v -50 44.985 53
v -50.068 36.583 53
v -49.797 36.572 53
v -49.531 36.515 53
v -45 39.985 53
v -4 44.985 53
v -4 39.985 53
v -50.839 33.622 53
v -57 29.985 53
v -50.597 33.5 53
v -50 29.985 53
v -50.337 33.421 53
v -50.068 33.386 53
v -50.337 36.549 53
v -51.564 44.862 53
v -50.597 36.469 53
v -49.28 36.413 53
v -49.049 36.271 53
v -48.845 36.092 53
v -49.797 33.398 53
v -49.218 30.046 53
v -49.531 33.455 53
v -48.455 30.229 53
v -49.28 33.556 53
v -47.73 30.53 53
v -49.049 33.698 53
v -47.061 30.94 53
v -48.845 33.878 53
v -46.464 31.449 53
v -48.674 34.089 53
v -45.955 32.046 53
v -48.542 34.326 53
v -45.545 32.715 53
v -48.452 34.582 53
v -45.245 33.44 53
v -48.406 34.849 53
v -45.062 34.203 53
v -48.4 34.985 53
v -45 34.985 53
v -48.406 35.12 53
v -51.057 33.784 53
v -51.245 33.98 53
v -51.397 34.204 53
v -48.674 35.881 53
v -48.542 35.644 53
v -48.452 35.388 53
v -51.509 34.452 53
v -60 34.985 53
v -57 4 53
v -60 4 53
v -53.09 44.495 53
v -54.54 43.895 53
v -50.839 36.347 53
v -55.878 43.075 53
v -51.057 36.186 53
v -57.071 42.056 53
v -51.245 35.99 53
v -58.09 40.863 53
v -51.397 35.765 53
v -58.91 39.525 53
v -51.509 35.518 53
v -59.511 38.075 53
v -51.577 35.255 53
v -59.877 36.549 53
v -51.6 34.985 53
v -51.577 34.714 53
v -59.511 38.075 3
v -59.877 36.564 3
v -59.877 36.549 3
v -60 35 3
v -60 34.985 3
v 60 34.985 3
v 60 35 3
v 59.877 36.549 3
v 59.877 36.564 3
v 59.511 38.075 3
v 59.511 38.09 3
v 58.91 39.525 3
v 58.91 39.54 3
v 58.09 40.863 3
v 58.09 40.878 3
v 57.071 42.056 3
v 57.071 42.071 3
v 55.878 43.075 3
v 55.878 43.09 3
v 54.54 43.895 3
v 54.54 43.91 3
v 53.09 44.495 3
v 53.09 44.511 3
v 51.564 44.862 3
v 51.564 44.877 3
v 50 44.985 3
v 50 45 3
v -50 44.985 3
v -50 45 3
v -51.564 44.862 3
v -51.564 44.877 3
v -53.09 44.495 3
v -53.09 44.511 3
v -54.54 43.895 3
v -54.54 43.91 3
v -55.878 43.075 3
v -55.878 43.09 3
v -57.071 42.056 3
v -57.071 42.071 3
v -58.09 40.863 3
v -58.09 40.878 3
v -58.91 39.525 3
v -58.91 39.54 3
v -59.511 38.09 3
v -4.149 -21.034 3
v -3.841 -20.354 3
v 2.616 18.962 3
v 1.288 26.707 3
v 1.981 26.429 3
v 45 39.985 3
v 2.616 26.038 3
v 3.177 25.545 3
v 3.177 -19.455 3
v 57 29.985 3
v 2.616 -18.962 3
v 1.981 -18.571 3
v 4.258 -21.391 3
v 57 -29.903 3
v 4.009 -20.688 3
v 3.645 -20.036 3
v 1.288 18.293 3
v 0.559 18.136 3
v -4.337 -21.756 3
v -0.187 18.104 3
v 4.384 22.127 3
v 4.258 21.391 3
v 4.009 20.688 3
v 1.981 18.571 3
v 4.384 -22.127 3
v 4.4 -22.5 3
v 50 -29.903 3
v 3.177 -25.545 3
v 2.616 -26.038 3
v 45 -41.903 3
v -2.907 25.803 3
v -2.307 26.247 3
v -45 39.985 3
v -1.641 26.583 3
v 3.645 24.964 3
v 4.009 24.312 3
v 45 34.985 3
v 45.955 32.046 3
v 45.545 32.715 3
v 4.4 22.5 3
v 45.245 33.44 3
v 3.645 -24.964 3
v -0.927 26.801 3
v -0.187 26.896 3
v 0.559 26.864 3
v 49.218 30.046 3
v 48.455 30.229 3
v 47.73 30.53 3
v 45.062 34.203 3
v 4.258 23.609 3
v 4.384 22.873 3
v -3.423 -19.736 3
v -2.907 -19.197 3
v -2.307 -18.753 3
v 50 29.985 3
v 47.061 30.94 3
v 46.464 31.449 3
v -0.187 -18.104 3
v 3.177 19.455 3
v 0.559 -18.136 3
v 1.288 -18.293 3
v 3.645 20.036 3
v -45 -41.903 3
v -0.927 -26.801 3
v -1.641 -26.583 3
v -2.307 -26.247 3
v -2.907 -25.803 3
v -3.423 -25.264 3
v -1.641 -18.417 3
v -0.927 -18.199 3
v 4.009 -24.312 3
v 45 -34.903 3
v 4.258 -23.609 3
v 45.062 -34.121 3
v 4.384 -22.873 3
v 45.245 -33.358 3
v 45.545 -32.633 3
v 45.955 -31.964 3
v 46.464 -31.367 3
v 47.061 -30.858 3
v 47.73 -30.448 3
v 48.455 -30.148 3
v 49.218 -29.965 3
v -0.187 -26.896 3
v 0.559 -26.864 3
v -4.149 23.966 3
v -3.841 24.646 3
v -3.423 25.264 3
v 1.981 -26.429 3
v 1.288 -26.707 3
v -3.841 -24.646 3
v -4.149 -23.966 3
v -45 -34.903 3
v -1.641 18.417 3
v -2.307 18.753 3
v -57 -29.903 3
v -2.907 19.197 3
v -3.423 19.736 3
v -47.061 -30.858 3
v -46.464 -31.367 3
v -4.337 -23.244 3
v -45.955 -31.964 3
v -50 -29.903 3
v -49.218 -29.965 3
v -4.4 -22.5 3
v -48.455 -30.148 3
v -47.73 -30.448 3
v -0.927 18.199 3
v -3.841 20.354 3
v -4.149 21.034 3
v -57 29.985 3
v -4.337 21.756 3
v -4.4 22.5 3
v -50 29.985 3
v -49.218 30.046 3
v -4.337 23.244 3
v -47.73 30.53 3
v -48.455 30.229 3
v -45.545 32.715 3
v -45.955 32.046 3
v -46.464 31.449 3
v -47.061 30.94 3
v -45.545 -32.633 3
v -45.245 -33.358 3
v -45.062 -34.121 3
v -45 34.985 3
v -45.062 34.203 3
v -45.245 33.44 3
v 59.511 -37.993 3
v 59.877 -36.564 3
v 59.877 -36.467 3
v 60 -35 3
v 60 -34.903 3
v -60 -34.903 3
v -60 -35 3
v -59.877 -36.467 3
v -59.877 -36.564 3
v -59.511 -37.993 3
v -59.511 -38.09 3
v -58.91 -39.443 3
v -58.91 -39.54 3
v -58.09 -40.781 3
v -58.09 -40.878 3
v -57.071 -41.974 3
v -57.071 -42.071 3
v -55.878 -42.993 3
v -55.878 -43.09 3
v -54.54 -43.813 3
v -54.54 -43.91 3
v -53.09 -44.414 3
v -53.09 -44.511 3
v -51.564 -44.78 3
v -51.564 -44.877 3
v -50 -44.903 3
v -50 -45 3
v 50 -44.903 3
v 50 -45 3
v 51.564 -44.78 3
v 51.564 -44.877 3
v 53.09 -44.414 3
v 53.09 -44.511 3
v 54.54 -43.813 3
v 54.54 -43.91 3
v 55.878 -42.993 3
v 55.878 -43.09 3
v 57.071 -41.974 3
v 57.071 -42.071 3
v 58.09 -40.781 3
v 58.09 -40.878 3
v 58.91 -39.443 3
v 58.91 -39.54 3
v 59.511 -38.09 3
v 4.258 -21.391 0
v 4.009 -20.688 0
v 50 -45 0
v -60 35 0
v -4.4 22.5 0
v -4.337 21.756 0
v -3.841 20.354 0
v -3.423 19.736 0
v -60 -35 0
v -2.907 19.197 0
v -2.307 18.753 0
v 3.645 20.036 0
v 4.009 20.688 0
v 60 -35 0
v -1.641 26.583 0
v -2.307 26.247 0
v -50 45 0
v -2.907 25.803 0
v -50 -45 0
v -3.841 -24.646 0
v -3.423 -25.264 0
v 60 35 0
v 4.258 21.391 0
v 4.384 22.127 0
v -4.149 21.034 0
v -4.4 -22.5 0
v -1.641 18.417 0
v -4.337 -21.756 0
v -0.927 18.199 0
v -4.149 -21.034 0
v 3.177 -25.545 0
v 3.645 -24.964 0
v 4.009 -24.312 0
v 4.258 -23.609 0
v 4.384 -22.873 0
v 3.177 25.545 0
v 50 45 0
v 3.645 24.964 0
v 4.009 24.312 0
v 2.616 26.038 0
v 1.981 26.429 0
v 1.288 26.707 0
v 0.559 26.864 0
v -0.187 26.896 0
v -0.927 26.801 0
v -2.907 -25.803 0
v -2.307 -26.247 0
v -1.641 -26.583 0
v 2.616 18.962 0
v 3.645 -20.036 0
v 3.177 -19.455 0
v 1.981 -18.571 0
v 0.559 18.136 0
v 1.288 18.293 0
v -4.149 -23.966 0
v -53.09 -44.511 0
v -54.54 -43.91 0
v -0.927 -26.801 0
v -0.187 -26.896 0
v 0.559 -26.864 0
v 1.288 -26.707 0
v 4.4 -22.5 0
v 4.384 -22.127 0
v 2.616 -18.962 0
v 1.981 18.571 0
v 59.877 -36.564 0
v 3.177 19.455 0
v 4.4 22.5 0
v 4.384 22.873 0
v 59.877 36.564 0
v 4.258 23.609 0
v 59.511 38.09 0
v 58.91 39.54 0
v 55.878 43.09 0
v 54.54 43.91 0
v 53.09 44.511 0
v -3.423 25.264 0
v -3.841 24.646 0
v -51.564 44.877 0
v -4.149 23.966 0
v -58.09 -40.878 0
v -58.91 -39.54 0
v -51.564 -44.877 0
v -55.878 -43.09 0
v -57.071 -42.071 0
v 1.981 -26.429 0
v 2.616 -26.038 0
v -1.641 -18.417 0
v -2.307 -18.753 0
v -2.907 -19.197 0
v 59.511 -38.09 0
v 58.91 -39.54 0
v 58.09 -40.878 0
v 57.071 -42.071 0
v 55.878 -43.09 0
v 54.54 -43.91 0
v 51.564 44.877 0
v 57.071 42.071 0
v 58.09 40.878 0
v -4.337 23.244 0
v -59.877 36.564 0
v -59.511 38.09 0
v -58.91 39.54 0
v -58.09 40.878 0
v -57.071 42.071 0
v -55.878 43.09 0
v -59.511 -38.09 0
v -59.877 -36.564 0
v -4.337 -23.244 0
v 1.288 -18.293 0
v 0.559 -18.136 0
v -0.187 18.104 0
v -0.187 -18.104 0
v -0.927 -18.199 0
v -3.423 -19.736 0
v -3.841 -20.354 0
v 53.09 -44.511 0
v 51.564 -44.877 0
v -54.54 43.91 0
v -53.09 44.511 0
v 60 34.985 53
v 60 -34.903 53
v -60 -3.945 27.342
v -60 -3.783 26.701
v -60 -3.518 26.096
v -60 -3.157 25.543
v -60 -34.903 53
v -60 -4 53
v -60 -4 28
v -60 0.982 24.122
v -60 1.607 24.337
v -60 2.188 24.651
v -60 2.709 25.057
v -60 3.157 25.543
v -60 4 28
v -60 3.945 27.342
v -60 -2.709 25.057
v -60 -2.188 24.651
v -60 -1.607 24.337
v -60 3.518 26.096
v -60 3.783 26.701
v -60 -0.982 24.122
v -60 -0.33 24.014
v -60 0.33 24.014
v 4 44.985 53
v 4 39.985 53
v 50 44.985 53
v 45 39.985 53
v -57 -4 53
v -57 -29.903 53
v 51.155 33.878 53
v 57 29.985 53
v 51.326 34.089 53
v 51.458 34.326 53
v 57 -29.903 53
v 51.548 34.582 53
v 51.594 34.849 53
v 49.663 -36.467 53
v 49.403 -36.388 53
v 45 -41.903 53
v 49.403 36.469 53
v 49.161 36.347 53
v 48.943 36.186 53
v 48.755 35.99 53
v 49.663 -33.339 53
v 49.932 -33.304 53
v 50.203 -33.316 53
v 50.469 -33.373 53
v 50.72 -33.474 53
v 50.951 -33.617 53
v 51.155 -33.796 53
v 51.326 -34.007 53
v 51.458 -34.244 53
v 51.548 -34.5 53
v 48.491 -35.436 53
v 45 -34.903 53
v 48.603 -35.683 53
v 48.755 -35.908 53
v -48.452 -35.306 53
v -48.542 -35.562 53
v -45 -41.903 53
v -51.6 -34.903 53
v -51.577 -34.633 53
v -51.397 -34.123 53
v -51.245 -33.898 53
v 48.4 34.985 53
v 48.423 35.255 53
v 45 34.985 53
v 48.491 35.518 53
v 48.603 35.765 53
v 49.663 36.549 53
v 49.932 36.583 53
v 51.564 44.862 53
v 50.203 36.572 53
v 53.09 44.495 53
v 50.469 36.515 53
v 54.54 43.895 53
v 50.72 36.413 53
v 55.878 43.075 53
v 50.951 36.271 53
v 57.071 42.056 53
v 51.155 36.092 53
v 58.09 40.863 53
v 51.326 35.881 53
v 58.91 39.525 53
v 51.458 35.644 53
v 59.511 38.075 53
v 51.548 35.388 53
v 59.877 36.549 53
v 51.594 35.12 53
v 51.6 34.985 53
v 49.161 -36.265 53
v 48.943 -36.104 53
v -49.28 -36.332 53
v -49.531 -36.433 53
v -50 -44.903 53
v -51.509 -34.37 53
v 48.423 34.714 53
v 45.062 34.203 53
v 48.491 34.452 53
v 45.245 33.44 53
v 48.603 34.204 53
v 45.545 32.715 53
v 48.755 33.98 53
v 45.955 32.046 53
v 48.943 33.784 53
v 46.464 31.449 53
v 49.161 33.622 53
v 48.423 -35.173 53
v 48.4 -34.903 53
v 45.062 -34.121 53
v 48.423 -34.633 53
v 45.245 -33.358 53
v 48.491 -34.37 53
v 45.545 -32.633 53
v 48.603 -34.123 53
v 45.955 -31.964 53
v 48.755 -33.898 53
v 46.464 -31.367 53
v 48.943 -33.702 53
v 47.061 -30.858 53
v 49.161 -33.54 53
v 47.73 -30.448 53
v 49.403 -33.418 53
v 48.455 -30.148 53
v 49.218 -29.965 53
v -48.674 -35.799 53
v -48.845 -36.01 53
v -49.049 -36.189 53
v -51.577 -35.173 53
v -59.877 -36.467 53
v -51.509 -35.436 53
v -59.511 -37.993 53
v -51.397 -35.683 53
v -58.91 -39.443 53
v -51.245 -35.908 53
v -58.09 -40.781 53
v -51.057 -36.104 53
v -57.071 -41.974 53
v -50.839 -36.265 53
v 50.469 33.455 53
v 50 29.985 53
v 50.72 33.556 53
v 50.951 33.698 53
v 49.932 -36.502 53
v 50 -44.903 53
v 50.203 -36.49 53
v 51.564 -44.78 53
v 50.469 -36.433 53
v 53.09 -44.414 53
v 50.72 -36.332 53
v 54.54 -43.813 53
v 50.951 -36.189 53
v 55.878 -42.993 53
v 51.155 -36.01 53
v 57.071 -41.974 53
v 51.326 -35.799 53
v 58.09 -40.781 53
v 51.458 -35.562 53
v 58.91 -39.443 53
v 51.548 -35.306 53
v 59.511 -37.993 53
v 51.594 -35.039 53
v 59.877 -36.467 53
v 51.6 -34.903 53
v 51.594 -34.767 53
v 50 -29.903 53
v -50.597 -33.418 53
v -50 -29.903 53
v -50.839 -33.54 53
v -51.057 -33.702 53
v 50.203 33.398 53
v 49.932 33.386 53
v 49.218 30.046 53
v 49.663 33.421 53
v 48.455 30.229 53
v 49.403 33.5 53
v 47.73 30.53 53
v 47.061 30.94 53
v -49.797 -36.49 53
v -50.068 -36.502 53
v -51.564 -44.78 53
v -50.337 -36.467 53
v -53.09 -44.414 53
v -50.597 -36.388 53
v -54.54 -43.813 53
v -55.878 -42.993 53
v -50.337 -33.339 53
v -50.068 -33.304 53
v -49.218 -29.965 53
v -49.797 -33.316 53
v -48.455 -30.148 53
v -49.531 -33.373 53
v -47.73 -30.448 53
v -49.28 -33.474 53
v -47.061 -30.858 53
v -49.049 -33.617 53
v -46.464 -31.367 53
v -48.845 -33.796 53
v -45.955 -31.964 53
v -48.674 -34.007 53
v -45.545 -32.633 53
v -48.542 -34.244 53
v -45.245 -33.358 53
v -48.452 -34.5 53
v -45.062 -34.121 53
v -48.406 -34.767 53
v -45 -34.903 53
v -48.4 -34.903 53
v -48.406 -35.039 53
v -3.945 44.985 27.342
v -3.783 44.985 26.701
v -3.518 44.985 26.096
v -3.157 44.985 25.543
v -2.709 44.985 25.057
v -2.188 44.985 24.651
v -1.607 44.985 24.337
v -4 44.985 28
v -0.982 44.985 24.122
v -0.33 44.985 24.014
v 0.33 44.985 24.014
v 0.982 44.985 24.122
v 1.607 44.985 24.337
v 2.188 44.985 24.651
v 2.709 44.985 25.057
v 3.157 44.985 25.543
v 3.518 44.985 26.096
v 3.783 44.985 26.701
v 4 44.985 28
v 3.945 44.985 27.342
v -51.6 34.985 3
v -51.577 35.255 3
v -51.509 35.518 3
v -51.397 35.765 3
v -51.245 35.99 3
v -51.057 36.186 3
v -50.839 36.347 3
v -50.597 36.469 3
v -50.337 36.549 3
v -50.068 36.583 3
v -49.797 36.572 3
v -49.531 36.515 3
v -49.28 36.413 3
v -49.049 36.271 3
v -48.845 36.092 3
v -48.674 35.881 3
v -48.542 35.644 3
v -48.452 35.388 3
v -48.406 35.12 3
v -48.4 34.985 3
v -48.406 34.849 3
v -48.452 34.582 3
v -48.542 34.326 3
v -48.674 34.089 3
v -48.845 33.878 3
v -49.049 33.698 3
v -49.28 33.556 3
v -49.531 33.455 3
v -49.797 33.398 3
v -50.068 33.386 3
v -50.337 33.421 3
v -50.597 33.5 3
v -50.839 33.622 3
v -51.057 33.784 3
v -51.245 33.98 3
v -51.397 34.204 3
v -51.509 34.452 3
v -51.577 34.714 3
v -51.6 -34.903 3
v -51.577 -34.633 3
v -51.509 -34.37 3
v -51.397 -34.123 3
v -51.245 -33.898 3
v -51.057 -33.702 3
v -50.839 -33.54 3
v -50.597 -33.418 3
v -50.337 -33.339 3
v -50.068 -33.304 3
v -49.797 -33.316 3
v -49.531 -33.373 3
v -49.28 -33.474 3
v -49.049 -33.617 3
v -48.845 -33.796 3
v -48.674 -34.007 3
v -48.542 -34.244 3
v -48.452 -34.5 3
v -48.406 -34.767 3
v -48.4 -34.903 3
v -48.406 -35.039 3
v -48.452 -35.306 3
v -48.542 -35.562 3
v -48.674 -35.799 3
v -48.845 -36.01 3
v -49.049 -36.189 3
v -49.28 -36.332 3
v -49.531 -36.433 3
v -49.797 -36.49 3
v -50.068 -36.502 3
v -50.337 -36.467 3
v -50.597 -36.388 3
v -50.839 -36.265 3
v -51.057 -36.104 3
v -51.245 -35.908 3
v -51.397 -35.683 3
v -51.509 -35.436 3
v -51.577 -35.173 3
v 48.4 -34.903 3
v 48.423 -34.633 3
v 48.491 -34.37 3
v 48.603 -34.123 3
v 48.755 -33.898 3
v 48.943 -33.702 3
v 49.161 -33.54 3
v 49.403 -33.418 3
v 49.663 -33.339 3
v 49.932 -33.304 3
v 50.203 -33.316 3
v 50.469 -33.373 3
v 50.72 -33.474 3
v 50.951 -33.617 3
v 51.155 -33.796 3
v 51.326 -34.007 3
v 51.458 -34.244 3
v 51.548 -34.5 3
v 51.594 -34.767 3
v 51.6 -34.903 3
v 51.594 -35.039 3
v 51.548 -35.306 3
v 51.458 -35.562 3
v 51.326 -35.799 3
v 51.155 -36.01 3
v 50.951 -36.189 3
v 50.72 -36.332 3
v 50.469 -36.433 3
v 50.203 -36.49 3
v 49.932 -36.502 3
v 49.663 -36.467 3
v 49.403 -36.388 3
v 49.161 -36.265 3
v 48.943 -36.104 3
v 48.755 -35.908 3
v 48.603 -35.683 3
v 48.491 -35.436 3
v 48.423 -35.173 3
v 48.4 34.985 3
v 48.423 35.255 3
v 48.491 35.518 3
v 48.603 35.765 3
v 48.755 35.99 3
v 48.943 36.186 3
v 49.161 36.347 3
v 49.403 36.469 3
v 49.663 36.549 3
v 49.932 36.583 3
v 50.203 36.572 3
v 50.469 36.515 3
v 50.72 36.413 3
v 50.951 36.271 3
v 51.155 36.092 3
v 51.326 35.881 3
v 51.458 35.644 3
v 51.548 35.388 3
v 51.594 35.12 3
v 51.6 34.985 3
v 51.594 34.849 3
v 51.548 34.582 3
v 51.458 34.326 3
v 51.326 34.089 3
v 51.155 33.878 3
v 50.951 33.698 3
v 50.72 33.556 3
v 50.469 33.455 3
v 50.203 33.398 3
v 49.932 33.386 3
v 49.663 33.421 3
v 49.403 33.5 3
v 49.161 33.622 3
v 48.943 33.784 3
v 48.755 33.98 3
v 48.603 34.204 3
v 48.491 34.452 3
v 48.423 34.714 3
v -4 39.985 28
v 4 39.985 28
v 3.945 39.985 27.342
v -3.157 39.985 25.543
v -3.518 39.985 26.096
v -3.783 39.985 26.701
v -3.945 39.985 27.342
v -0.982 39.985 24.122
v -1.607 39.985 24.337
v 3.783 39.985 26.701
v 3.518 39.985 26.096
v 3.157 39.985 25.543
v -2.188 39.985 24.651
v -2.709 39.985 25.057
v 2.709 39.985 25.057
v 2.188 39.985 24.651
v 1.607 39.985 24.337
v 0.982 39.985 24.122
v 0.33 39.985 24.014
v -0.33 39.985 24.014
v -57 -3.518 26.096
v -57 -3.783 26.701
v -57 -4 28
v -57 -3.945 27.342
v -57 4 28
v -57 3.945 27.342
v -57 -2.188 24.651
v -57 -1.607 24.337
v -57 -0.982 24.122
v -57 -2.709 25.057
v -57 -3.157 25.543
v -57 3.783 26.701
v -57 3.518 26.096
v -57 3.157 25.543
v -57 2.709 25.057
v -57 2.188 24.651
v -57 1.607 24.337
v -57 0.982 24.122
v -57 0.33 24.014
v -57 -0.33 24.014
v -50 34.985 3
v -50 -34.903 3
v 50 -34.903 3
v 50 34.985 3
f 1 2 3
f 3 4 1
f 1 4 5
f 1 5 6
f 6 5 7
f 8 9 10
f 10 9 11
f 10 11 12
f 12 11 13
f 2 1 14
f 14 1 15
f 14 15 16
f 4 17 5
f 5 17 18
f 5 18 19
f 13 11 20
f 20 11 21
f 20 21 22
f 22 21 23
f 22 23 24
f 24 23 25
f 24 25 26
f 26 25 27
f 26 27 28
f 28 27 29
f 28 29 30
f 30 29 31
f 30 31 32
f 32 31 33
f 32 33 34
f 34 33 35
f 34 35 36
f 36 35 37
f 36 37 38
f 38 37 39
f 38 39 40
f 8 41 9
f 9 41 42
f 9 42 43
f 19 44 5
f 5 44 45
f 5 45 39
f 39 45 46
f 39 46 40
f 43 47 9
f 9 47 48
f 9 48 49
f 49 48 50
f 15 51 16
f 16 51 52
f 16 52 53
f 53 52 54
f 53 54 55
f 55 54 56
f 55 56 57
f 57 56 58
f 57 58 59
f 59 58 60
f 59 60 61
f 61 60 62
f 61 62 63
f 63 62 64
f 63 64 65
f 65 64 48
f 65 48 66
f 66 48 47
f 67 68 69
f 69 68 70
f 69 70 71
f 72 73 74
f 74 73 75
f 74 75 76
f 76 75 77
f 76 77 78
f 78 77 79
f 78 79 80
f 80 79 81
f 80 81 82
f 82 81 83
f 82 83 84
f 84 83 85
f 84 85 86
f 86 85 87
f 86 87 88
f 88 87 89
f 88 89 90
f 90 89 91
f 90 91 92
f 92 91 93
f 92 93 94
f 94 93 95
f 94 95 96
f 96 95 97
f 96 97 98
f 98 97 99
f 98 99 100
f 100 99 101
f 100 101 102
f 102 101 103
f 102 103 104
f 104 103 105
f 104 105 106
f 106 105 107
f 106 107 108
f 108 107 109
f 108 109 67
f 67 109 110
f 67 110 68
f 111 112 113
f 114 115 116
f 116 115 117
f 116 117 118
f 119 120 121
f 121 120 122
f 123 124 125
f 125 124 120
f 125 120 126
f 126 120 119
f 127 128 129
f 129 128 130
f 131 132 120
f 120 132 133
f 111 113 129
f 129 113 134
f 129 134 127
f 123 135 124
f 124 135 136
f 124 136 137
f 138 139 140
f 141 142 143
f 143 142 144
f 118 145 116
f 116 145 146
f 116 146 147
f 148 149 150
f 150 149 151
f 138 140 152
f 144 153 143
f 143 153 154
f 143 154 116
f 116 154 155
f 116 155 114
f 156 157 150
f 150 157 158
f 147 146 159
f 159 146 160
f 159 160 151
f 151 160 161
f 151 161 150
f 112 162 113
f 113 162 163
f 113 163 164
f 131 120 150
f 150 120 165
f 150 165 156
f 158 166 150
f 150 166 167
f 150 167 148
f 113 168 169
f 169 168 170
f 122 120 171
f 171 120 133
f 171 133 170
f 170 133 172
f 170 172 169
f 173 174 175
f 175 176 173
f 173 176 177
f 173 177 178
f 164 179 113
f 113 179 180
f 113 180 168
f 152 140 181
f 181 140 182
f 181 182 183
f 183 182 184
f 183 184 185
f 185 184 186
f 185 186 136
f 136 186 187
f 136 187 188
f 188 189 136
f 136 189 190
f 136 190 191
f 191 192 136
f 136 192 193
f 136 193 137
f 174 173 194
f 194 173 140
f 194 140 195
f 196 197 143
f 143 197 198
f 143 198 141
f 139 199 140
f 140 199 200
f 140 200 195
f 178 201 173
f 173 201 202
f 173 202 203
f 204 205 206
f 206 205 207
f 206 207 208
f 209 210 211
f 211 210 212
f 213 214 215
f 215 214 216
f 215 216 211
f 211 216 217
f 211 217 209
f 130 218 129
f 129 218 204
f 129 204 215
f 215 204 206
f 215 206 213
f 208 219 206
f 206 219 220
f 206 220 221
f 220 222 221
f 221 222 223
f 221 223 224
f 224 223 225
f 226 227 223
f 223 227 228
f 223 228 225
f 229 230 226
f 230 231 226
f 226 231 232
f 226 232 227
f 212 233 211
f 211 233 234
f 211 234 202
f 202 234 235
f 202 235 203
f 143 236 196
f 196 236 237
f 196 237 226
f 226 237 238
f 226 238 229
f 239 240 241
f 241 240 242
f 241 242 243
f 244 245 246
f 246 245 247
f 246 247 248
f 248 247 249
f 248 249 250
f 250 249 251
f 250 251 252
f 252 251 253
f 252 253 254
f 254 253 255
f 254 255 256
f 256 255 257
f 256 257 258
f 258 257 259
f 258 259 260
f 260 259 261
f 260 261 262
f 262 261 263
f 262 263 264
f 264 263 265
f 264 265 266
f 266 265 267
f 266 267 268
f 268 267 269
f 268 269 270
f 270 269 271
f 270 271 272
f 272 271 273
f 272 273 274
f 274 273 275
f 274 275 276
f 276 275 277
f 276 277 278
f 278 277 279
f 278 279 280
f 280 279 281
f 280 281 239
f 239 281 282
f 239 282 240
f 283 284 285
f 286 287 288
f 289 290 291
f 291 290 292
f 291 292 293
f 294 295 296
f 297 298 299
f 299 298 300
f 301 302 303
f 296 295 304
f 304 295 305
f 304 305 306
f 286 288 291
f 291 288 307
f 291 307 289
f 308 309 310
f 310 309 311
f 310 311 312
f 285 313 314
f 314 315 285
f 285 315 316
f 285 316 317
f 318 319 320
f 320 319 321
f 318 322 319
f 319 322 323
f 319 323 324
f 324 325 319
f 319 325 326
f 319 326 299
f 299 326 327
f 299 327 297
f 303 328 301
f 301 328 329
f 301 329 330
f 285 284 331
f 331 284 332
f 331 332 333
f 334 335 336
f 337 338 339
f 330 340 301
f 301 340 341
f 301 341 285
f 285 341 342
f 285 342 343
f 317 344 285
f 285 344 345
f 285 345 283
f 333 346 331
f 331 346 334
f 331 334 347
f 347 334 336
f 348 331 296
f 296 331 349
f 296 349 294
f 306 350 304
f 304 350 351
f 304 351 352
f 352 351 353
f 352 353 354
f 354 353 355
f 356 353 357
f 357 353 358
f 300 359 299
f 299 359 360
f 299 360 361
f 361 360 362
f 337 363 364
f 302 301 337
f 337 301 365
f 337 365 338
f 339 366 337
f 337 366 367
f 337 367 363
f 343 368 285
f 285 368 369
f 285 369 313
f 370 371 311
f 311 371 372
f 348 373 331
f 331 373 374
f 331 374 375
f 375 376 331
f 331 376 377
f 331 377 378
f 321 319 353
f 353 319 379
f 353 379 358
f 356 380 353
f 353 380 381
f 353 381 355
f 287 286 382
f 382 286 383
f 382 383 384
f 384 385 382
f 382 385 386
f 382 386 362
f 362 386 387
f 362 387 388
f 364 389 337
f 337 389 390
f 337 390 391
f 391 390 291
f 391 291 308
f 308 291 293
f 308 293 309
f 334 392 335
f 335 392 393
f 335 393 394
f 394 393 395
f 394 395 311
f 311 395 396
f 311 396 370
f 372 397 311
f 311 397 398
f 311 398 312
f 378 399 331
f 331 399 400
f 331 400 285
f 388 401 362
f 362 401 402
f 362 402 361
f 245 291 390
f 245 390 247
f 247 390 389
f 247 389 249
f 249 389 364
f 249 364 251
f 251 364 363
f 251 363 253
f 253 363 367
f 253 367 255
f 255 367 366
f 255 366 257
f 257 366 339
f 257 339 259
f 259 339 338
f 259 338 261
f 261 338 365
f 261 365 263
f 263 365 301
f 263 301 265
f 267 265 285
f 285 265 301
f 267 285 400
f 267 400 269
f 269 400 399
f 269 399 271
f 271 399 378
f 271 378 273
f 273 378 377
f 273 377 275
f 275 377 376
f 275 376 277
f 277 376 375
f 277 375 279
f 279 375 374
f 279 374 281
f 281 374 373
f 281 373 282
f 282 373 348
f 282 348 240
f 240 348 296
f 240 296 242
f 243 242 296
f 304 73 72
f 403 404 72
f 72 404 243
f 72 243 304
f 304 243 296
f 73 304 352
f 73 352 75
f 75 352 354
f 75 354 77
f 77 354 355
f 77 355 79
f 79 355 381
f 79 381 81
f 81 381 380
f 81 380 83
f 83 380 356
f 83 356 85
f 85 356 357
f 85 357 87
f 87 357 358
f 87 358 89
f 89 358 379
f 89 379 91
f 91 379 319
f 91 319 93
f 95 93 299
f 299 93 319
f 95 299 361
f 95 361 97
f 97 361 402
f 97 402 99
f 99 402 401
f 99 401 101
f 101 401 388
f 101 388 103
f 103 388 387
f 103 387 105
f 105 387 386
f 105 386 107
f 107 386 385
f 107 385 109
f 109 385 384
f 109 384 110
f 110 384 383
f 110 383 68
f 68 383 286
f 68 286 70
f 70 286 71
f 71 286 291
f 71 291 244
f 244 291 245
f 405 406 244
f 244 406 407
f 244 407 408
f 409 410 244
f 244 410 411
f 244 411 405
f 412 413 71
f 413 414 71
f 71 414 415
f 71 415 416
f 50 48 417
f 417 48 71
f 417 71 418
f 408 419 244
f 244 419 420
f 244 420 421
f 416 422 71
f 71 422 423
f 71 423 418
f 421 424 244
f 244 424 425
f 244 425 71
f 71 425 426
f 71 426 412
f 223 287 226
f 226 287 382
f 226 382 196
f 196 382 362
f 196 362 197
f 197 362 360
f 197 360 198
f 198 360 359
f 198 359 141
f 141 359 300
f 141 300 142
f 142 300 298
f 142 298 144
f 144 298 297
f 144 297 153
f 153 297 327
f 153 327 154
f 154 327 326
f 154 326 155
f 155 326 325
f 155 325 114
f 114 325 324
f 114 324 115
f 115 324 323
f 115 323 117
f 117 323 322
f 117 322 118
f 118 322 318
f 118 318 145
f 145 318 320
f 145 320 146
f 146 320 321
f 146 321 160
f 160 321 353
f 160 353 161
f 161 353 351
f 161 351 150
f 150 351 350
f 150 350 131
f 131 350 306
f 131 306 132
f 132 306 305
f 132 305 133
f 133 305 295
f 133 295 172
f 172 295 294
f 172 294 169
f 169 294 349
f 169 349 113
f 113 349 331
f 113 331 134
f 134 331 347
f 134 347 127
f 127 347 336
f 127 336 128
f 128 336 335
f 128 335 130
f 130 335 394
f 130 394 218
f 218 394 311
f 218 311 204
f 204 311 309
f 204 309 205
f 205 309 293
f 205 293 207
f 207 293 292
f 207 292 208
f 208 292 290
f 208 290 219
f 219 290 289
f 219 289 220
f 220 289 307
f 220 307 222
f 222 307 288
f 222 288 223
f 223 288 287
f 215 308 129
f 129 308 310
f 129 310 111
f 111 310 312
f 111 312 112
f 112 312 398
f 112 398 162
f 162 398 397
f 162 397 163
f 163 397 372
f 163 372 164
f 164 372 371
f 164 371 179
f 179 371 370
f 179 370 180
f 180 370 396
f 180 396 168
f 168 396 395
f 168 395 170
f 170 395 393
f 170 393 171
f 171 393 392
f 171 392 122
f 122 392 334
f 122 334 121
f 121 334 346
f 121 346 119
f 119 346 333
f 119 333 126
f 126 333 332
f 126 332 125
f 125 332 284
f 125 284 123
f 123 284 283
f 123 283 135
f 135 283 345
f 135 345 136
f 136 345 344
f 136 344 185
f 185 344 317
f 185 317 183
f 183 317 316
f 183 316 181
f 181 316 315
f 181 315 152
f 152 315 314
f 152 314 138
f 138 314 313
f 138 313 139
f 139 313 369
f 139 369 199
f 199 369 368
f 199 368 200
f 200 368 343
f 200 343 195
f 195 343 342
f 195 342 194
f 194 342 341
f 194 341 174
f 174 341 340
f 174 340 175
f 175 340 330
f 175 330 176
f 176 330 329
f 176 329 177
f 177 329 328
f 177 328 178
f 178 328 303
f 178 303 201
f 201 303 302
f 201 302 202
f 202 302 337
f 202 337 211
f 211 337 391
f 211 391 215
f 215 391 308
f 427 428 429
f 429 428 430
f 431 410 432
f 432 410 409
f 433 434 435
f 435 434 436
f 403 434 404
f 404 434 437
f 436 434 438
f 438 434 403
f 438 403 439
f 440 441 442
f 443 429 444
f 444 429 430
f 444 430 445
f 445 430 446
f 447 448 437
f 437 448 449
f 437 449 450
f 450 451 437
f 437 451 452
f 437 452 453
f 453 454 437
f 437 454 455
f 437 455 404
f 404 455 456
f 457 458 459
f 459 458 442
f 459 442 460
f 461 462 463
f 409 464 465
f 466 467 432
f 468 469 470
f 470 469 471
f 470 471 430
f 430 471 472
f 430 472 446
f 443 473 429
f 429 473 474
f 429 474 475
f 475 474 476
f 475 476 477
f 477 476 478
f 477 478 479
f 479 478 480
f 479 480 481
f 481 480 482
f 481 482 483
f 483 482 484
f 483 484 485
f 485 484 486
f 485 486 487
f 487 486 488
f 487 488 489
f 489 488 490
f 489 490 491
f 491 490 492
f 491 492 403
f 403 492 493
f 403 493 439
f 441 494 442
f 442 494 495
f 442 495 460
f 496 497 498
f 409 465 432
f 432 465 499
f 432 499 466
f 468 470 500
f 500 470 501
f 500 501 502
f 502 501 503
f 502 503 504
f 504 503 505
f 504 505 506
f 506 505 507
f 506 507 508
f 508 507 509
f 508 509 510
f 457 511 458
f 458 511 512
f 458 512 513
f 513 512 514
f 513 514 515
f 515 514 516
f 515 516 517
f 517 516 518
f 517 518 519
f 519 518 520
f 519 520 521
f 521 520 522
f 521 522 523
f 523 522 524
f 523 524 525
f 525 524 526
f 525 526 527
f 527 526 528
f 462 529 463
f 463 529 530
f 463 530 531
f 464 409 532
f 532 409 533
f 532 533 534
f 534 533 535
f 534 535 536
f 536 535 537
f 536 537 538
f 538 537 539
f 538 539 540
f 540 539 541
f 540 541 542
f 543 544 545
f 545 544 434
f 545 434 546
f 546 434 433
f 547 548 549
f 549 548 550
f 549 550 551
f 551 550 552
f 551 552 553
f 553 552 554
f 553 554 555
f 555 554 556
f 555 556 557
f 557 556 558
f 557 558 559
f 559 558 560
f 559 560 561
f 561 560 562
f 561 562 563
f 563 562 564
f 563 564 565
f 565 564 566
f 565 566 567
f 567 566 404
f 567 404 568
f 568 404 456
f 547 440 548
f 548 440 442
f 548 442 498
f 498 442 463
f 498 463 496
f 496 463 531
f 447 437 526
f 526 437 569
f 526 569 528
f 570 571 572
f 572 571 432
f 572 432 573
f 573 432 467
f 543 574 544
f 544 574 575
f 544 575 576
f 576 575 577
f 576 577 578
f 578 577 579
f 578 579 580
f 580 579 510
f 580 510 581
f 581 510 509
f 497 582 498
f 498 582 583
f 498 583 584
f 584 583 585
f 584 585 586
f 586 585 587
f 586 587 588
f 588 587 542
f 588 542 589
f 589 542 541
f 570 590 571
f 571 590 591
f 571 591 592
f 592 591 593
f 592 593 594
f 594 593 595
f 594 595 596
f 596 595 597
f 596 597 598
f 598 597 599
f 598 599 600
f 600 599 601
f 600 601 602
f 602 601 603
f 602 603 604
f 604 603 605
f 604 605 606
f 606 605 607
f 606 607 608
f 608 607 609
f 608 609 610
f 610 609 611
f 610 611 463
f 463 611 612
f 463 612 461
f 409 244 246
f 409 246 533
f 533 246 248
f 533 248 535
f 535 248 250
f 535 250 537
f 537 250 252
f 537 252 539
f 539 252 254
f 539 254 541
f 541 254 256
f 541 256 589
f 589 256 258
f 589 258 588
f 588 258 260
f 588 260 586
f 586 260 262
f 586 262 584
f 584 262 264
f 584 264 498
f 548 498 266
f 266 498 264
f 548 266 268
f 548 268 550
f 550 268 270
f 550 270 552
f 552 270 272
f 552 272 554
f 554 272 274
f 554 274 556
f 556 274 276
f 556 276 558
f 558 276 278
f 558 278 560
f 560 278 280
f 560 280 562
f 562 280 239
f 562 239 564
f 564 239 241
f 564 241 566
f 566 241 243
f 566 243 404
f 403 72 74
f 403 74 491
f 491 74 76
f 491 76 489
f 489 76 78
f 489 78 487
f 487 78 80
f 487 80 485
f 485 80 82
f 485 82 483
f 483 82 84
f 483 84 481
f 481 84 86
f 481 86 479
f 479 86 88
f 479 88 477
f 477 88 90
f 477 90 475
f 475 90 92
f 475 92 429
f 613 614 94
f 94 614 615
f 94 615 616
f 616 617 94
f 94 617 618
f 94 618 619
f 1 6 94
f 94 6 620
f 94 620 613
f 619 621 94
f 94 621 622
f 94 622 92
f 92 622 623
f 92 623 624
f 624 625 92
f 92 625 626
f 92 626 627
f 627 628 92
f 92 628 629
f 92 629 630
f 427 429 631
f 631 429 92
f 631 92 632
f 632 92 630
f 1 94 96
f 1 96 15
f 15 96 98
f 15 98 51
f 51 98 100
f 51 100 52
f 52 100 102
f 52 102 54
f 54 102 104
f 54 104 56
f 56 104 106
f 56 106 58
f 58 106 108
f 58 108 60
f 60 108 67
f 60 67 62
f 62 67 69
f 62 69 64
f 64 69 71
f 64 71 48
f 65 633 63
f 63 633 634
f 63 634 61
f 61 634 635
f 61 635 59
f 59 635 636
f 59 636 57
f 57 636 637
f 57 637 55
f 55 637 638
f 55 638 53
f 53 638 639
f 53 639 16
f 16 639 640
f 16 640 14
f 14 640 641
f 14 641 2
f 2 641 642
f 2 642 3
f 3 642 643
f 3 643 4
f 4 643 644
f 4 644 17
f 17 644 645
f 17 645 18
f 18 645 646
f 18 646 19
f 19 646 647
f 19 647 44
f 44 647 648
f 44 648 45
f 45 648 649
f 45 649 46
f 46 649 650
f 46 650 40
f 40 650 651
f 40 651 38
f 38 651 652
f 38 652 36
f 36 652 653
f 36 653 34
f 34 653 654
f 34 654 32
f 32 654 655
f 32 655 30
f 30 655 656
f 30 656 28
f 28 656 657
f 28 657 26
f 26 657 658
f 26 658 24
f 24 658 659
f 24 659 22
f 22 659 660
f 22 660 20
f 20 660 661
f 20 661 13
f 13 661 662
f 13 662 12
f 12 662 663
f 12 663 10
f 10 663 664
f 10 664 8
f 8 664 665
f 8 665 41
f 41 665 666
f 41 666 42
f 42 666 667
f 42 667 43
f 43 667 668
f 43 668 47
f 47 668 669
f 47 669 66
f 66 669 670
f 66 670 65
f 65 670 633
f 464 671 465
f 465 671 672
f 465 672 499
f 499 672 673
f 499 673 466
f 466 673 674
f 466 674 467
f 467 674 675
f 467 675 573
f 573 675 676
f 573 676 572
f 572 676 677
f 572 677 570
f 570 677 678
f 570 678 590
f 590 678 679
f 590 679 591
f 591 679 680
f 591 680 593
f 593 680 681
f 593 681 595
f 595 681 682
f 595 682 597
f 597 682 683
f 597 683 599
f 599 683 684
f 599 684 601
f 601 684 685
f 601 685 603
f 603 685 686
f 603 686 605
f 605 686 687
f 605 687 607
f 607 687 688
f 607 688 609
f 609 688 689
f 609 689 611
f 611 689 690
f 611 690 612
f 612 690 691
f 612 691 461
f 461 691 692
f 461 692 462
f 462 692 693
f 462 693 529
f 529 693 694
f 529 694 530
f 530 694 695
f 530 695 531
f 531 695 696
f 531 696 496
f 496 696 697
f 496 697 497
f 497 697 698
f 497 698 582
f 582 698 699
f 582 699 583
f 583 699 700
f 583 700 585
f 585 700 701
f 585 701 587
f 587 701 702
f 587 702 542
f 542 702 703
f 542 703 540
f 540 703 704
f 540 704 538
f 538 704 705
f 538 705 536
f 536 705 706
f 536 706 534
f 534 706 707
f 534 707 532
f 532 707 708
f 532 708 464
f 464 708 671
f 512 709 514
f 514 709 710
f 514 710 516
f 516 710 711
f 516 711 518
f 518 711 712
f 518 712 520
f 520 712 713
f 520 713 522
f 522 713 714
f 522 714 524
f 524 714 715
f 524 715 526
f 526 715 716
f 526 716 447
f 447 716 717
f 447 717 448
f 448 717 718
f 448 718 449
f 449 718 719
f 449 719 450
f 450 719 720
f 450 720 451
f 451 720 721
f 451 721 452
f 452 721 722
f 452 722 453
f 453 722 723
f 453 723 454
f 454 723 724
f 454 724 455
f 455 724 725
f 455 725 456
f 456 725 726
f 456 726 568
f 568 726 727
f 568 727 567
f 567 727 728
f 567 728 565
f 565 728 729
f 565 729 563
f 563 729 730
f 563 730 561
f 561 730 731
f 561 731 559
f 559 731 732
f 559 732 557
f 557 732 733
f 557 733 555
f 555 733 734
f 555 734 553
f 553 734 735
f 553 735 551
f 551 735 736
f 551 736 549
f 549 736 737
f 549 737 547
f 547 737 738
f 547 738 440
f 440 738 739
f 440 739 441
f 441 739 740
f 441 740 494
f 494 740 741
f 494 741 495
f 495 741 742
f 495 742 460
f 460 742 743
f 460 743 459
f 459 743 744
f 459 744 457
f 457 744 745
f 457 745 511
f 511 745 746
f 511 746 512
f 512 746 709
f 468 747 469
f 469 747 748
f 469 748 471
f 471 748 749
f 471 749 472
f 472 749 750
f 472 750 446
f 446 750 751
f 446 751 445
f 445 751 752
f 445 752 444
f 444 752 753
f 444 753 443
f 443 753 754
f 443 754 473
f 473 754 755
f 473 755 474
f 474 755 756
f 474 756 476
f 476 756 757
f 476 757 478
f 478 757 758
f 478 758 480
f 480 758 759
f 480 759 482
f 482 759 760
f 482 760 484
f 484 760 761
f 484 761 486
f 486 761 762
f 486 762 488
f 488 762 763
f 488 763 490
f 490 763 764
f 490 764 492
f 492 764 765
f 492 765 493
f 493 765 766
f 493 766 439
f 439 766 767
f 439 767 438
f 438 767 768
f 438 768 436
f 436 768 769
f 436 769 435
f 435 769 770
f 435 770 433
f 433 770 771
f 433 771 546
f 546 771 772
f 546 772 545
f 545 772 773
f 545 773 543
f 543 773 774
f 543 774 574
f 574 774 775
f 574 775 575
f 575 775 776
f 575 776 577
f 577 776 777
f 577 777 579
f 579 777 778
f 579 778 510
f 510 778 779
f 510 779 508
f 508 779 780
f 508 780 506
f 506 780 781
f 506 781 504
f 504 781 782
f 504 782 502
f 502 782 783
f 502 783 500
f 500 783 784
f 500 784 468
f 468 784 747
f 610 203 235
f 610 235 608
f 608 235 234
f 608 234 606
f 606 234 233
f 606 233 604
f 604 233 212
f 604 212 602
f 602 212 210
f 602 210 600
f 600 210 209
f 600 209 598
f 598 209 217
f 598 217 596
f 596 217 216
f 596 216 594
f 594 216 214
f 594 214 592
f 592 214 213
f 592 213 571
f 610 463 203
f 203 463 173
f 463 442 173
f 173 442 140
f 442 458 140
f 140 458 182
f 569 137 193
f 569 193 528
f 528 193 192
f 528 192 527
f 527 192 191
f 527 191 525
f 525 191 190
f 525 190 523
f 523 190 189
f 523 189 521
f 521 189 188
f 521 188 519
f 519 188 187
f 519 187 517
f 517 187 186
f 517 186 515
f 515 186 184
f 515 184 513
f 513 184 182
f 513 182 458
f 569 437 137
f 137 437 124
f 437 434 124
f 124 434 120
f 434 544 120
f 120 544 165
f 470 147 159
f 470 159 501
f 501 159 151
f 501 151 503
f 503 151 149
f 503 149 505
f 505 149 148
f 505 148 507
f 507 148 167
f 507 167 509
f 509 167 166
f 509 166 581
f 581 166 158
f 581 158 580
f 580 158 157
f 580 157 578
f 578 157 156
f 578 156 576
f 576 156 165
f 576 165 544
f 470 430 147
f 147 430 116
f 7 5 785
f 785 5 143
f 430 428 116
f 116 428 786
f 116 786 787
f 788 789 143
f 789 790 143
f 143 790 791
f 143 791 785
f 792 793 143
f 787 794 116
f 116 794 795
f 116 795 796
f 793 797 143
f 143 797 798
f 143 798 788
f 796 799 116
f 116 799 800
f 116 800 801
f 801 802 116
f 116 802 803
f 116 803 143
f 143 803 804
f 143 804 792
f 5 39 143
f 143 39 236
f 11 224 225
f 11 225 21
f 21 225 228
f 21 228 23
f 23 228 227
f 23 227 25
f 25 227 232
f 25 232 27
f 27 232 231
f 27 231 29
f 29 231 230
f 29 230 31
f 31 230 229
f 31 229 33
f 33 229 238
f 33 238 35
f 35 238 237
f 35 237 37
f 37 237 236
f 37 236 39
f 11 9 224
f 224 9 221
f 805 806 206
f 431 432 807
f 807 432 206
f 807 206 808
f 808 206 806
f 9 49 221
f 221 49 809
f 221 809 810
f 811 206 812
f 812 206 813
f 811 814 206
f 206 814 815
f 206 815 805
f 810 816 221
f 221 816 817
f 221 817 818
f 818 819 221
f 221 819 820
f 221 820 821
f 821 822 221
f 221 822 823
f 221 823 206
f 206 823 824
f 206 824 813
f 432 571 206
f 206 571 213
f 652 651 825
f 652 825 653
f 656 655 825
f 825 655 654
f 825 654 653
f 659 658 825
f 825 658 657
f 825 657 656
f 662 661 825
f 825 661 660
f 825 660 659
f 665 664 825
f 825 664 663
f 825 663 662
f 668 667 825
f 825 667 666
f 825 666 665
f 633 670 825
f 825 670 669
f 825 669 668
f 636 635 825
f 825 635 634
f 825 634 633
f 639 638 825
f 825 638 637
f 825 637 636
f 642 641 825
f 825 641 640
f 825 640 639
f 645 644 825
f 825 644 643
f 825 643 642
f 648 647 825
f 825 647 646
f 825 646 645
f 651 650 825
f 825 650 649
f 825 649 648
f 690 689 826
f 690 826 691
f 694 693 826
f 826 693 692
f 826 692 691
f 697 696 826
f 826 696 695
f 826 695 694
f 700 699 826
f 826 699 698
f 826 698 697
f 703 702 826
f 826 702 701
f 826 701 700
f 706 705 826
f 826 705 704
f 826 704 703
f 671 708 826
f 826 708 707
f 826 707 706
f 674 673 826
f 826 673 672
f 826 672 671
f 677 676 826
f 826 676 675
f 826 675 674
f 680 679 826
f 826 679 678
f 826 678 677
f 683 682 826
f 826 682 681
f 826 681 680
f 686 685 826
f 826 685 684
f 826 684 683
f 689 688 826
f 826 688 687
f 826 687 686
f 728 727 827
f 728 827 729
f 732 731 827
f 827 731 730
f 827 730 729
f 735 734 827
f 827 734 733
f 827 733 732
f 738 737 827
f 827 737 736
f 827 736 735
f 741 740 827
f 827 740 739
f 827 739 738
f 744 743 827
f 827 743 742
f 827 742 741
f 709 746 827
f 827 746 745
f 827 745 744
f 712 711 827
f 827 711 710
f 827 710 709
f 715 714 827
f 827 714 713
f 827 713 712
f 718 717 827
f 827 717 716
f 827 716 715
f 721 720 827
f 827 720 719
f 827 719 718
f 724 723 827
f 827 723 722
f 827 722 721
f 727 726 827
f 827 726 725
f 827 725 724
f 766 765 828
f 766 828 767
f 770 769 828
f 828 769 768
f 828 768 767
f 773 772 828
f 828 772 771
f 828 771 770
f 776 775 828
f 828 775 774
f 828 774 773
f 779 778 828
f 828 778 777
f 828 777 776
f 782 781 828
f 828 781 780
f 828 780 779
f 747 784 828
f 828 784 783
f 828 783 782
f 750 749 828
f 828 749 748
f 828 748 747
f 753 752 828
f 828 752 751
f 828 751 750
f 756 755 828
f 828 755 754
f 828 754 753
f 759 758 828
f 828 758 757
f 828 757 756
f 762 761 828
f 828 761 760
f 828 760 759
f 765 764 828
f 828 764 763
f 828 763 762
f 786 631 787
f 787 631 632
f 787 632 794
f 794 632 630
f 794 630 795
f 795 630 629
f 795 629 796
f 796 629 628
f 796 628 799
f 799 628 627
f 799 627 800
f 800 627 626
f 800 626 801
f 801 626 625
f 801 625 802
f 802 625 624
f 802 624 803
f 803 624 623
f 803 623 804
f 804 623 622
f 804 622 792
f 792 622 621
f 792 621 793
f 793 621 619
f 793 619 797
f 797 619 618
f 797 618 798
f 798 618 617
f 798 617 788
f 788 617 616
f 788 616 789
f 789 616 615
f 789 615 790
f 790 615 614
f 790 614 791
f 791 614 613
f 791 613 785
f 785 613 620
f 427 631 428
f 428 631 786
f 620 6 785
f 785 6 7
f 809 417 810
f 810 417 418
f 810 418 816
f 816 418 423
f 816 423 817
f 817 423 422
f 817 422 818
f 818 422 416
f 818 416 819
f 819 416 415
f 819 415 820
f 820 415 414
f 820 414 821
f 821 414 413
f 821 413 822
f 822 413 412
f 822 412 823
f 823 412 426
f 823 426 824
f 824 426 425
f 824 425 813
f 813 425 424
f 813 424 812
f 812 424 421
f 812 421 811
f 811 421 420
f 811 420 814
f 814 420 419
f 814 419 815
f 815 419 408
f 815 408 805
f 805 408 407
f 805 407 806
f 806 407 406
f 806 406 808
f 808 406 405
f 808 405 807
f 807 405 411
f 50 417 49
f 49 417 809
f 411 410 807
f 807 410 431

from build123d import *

# Parameters (mm, degrees)
SKETCH1_R           = 4.4
BOSS_EXTRUDE1_DEPTH = 3
SKETCH2_R           = 1.6
BOSS_EXTRUDE2_DEPTH = 50
CUT_EXTRUDE1_DEPTH  = 10
CUT_EXTRUDE2_DEPTH  = 10


with BuildPart() as part:
    # Sketch1 → Boss-Extrude1 (new body)
    with BuildSketch(Plane.XY):
        with BuildLine():
            Line((-50, 45), (50, 45))
            ThreePointArc((50, 45), (57.071067812, 42.071067812), (60, 35))
            Line((60, 35), (60, -35))
            ThreePointArc((60, -35), (57.071067812, -42.071067812), (50, -45))
            Line((50, -45), (-50, -45))
            ThreePointArc((-50, -45), (-57.071067812, -42.071067812), (-60, -35))
            Line((-60, -35), (-60, 35))
            ThreePointArc((-60, 35), (-57.071067812, 42.071067812), (-50, 45))
        make_face()
        with Locations((0, 22.5)):
            Circle(SKETCH1_R, mode=Mode.SUBTRACT)
        with Locations((0, -22.5)):
            Circle(SKETCH1_R, mode=Mode.SUBTRACT)
    extrude(amount=BOSS_EXTRUDE1_DEPTH)

    # Sketch2 → Boss-Extrude2 (add)
    with BuildSketch(Plane(origin=(0, -44.902942235, 3), x_dir=(1, 0, 0), z_dir=(0, 0, 1))):
        with BuildLine():
            Line((-50, 0), (50, 0))
            ThreePointArc((50, 0), (57.071067812, 2.928932188), (60, 10))
            Line((60, 10), (60, 79.887698494))
            ThreePointArc((60, 79.887698494), (57.071067812, 86.958766306), (50, 89.887698494))
            Line((50, 89.887698494), (-50, 89.887698494))
            ThreePointArc((-50, 89.887698494), (-57.071067812, 86.958766306), (-60, 79.887698494))
            Line((-60, 79.887698494), (-60, 10))
            ThreePointArc((-60, 10), (-57.071067812, 2.928932188), (-50, 0))
        make_face()
        with Locations((-50, 79.887698494)):
            Circle(SKETCH2_R, mode=Mode.SUBTRACT)
        with Locations((-50, 10)):
            Circle(SKETCH2_R, mode=Mode.SUBTRACT)
        with Locations((50, 10)):
            Circle(SKETCH2_R, mode=Mode.SUBTRACT)
        with Locations((50, 79.887698494)):
            Circle(SKETCH2_R, mode=Mode.SUBTRACT)
        with BuildLine():
            Line((-45, 10), (-45, 3))
            Line((-45, 3), (45, 3))
            Line((45, 3), (45, 10))
            ThreePointArc((45, 10), (46.464466094, 13.535533906), (50, 15))
            Line((50, 15), (57, 15))
            Line((57, 15), (57, 74.887698494))
            Line((57, 74.887698494), (50, 74.887698494))
            ThreePointArc((50, 74.887698494), (46.464466094, 76.352164588), (45, 79.887698494))
            Line((45, 79.887698494), (45, 84.887698494))
            Line((45, 84.887698494), (-45, 84.887698494))
            Line((-45, 84.887698494), (-45, 79.887698494))
            ThreePointArc((-45, 79.887698494), (-46.464466094, 76.352164588), (-50, 74.887698494))
            Line((-50, 74.887698494), (-57, 74.887698494))
            Line((-57, 74.887698494), (-57, 15))
            Line((-57, 15), (-50, 15))
            ThreePointArc((-50, 15), (-46.464466094, 13.535533906), (-45, 10))
        make_face(mode=Mode.SUBTRACT)
    extrude(amount=BOSS_EXTRUDE2_DEPTH)

    # Sketch6 → Cut-Extrude1 (cut)
    with BuildSketch(Plane(origin=(0, 44.984756259, 0), x_dir=(1, 0, 0), z_dir=(0, 1, 0))):
        with BuildLine():
            Line((-4, -28), (-4, -53))
            Line((-4, -53), (4, -53))
            Line((4, -53), (4, -28))
            ThreePointArc((4, -28), (0, -24), (-4, -28))
        make_face()
    extrude(amount=-CUT_EXTRUDE1_DEPTH, mode=Mode.SUBTRACT)

    # Sketch7 → Cut-Extrude2 (cut)
    with BuildSketch(Plane.ZY.offset(60)):
        with BuildLine():
            Line((28, 4), (53, 4))
            Line((53, 4), (53, -4))
            Line((53, -4), (28, -4))
            ThreePointArc((28, -4), (24, 0), (28, 4))
        make_face()
    extrude(amount=-CUT_EXTRUDE2_DEPTH, mode=Mode.SUBTRACT)


solid = part.part
